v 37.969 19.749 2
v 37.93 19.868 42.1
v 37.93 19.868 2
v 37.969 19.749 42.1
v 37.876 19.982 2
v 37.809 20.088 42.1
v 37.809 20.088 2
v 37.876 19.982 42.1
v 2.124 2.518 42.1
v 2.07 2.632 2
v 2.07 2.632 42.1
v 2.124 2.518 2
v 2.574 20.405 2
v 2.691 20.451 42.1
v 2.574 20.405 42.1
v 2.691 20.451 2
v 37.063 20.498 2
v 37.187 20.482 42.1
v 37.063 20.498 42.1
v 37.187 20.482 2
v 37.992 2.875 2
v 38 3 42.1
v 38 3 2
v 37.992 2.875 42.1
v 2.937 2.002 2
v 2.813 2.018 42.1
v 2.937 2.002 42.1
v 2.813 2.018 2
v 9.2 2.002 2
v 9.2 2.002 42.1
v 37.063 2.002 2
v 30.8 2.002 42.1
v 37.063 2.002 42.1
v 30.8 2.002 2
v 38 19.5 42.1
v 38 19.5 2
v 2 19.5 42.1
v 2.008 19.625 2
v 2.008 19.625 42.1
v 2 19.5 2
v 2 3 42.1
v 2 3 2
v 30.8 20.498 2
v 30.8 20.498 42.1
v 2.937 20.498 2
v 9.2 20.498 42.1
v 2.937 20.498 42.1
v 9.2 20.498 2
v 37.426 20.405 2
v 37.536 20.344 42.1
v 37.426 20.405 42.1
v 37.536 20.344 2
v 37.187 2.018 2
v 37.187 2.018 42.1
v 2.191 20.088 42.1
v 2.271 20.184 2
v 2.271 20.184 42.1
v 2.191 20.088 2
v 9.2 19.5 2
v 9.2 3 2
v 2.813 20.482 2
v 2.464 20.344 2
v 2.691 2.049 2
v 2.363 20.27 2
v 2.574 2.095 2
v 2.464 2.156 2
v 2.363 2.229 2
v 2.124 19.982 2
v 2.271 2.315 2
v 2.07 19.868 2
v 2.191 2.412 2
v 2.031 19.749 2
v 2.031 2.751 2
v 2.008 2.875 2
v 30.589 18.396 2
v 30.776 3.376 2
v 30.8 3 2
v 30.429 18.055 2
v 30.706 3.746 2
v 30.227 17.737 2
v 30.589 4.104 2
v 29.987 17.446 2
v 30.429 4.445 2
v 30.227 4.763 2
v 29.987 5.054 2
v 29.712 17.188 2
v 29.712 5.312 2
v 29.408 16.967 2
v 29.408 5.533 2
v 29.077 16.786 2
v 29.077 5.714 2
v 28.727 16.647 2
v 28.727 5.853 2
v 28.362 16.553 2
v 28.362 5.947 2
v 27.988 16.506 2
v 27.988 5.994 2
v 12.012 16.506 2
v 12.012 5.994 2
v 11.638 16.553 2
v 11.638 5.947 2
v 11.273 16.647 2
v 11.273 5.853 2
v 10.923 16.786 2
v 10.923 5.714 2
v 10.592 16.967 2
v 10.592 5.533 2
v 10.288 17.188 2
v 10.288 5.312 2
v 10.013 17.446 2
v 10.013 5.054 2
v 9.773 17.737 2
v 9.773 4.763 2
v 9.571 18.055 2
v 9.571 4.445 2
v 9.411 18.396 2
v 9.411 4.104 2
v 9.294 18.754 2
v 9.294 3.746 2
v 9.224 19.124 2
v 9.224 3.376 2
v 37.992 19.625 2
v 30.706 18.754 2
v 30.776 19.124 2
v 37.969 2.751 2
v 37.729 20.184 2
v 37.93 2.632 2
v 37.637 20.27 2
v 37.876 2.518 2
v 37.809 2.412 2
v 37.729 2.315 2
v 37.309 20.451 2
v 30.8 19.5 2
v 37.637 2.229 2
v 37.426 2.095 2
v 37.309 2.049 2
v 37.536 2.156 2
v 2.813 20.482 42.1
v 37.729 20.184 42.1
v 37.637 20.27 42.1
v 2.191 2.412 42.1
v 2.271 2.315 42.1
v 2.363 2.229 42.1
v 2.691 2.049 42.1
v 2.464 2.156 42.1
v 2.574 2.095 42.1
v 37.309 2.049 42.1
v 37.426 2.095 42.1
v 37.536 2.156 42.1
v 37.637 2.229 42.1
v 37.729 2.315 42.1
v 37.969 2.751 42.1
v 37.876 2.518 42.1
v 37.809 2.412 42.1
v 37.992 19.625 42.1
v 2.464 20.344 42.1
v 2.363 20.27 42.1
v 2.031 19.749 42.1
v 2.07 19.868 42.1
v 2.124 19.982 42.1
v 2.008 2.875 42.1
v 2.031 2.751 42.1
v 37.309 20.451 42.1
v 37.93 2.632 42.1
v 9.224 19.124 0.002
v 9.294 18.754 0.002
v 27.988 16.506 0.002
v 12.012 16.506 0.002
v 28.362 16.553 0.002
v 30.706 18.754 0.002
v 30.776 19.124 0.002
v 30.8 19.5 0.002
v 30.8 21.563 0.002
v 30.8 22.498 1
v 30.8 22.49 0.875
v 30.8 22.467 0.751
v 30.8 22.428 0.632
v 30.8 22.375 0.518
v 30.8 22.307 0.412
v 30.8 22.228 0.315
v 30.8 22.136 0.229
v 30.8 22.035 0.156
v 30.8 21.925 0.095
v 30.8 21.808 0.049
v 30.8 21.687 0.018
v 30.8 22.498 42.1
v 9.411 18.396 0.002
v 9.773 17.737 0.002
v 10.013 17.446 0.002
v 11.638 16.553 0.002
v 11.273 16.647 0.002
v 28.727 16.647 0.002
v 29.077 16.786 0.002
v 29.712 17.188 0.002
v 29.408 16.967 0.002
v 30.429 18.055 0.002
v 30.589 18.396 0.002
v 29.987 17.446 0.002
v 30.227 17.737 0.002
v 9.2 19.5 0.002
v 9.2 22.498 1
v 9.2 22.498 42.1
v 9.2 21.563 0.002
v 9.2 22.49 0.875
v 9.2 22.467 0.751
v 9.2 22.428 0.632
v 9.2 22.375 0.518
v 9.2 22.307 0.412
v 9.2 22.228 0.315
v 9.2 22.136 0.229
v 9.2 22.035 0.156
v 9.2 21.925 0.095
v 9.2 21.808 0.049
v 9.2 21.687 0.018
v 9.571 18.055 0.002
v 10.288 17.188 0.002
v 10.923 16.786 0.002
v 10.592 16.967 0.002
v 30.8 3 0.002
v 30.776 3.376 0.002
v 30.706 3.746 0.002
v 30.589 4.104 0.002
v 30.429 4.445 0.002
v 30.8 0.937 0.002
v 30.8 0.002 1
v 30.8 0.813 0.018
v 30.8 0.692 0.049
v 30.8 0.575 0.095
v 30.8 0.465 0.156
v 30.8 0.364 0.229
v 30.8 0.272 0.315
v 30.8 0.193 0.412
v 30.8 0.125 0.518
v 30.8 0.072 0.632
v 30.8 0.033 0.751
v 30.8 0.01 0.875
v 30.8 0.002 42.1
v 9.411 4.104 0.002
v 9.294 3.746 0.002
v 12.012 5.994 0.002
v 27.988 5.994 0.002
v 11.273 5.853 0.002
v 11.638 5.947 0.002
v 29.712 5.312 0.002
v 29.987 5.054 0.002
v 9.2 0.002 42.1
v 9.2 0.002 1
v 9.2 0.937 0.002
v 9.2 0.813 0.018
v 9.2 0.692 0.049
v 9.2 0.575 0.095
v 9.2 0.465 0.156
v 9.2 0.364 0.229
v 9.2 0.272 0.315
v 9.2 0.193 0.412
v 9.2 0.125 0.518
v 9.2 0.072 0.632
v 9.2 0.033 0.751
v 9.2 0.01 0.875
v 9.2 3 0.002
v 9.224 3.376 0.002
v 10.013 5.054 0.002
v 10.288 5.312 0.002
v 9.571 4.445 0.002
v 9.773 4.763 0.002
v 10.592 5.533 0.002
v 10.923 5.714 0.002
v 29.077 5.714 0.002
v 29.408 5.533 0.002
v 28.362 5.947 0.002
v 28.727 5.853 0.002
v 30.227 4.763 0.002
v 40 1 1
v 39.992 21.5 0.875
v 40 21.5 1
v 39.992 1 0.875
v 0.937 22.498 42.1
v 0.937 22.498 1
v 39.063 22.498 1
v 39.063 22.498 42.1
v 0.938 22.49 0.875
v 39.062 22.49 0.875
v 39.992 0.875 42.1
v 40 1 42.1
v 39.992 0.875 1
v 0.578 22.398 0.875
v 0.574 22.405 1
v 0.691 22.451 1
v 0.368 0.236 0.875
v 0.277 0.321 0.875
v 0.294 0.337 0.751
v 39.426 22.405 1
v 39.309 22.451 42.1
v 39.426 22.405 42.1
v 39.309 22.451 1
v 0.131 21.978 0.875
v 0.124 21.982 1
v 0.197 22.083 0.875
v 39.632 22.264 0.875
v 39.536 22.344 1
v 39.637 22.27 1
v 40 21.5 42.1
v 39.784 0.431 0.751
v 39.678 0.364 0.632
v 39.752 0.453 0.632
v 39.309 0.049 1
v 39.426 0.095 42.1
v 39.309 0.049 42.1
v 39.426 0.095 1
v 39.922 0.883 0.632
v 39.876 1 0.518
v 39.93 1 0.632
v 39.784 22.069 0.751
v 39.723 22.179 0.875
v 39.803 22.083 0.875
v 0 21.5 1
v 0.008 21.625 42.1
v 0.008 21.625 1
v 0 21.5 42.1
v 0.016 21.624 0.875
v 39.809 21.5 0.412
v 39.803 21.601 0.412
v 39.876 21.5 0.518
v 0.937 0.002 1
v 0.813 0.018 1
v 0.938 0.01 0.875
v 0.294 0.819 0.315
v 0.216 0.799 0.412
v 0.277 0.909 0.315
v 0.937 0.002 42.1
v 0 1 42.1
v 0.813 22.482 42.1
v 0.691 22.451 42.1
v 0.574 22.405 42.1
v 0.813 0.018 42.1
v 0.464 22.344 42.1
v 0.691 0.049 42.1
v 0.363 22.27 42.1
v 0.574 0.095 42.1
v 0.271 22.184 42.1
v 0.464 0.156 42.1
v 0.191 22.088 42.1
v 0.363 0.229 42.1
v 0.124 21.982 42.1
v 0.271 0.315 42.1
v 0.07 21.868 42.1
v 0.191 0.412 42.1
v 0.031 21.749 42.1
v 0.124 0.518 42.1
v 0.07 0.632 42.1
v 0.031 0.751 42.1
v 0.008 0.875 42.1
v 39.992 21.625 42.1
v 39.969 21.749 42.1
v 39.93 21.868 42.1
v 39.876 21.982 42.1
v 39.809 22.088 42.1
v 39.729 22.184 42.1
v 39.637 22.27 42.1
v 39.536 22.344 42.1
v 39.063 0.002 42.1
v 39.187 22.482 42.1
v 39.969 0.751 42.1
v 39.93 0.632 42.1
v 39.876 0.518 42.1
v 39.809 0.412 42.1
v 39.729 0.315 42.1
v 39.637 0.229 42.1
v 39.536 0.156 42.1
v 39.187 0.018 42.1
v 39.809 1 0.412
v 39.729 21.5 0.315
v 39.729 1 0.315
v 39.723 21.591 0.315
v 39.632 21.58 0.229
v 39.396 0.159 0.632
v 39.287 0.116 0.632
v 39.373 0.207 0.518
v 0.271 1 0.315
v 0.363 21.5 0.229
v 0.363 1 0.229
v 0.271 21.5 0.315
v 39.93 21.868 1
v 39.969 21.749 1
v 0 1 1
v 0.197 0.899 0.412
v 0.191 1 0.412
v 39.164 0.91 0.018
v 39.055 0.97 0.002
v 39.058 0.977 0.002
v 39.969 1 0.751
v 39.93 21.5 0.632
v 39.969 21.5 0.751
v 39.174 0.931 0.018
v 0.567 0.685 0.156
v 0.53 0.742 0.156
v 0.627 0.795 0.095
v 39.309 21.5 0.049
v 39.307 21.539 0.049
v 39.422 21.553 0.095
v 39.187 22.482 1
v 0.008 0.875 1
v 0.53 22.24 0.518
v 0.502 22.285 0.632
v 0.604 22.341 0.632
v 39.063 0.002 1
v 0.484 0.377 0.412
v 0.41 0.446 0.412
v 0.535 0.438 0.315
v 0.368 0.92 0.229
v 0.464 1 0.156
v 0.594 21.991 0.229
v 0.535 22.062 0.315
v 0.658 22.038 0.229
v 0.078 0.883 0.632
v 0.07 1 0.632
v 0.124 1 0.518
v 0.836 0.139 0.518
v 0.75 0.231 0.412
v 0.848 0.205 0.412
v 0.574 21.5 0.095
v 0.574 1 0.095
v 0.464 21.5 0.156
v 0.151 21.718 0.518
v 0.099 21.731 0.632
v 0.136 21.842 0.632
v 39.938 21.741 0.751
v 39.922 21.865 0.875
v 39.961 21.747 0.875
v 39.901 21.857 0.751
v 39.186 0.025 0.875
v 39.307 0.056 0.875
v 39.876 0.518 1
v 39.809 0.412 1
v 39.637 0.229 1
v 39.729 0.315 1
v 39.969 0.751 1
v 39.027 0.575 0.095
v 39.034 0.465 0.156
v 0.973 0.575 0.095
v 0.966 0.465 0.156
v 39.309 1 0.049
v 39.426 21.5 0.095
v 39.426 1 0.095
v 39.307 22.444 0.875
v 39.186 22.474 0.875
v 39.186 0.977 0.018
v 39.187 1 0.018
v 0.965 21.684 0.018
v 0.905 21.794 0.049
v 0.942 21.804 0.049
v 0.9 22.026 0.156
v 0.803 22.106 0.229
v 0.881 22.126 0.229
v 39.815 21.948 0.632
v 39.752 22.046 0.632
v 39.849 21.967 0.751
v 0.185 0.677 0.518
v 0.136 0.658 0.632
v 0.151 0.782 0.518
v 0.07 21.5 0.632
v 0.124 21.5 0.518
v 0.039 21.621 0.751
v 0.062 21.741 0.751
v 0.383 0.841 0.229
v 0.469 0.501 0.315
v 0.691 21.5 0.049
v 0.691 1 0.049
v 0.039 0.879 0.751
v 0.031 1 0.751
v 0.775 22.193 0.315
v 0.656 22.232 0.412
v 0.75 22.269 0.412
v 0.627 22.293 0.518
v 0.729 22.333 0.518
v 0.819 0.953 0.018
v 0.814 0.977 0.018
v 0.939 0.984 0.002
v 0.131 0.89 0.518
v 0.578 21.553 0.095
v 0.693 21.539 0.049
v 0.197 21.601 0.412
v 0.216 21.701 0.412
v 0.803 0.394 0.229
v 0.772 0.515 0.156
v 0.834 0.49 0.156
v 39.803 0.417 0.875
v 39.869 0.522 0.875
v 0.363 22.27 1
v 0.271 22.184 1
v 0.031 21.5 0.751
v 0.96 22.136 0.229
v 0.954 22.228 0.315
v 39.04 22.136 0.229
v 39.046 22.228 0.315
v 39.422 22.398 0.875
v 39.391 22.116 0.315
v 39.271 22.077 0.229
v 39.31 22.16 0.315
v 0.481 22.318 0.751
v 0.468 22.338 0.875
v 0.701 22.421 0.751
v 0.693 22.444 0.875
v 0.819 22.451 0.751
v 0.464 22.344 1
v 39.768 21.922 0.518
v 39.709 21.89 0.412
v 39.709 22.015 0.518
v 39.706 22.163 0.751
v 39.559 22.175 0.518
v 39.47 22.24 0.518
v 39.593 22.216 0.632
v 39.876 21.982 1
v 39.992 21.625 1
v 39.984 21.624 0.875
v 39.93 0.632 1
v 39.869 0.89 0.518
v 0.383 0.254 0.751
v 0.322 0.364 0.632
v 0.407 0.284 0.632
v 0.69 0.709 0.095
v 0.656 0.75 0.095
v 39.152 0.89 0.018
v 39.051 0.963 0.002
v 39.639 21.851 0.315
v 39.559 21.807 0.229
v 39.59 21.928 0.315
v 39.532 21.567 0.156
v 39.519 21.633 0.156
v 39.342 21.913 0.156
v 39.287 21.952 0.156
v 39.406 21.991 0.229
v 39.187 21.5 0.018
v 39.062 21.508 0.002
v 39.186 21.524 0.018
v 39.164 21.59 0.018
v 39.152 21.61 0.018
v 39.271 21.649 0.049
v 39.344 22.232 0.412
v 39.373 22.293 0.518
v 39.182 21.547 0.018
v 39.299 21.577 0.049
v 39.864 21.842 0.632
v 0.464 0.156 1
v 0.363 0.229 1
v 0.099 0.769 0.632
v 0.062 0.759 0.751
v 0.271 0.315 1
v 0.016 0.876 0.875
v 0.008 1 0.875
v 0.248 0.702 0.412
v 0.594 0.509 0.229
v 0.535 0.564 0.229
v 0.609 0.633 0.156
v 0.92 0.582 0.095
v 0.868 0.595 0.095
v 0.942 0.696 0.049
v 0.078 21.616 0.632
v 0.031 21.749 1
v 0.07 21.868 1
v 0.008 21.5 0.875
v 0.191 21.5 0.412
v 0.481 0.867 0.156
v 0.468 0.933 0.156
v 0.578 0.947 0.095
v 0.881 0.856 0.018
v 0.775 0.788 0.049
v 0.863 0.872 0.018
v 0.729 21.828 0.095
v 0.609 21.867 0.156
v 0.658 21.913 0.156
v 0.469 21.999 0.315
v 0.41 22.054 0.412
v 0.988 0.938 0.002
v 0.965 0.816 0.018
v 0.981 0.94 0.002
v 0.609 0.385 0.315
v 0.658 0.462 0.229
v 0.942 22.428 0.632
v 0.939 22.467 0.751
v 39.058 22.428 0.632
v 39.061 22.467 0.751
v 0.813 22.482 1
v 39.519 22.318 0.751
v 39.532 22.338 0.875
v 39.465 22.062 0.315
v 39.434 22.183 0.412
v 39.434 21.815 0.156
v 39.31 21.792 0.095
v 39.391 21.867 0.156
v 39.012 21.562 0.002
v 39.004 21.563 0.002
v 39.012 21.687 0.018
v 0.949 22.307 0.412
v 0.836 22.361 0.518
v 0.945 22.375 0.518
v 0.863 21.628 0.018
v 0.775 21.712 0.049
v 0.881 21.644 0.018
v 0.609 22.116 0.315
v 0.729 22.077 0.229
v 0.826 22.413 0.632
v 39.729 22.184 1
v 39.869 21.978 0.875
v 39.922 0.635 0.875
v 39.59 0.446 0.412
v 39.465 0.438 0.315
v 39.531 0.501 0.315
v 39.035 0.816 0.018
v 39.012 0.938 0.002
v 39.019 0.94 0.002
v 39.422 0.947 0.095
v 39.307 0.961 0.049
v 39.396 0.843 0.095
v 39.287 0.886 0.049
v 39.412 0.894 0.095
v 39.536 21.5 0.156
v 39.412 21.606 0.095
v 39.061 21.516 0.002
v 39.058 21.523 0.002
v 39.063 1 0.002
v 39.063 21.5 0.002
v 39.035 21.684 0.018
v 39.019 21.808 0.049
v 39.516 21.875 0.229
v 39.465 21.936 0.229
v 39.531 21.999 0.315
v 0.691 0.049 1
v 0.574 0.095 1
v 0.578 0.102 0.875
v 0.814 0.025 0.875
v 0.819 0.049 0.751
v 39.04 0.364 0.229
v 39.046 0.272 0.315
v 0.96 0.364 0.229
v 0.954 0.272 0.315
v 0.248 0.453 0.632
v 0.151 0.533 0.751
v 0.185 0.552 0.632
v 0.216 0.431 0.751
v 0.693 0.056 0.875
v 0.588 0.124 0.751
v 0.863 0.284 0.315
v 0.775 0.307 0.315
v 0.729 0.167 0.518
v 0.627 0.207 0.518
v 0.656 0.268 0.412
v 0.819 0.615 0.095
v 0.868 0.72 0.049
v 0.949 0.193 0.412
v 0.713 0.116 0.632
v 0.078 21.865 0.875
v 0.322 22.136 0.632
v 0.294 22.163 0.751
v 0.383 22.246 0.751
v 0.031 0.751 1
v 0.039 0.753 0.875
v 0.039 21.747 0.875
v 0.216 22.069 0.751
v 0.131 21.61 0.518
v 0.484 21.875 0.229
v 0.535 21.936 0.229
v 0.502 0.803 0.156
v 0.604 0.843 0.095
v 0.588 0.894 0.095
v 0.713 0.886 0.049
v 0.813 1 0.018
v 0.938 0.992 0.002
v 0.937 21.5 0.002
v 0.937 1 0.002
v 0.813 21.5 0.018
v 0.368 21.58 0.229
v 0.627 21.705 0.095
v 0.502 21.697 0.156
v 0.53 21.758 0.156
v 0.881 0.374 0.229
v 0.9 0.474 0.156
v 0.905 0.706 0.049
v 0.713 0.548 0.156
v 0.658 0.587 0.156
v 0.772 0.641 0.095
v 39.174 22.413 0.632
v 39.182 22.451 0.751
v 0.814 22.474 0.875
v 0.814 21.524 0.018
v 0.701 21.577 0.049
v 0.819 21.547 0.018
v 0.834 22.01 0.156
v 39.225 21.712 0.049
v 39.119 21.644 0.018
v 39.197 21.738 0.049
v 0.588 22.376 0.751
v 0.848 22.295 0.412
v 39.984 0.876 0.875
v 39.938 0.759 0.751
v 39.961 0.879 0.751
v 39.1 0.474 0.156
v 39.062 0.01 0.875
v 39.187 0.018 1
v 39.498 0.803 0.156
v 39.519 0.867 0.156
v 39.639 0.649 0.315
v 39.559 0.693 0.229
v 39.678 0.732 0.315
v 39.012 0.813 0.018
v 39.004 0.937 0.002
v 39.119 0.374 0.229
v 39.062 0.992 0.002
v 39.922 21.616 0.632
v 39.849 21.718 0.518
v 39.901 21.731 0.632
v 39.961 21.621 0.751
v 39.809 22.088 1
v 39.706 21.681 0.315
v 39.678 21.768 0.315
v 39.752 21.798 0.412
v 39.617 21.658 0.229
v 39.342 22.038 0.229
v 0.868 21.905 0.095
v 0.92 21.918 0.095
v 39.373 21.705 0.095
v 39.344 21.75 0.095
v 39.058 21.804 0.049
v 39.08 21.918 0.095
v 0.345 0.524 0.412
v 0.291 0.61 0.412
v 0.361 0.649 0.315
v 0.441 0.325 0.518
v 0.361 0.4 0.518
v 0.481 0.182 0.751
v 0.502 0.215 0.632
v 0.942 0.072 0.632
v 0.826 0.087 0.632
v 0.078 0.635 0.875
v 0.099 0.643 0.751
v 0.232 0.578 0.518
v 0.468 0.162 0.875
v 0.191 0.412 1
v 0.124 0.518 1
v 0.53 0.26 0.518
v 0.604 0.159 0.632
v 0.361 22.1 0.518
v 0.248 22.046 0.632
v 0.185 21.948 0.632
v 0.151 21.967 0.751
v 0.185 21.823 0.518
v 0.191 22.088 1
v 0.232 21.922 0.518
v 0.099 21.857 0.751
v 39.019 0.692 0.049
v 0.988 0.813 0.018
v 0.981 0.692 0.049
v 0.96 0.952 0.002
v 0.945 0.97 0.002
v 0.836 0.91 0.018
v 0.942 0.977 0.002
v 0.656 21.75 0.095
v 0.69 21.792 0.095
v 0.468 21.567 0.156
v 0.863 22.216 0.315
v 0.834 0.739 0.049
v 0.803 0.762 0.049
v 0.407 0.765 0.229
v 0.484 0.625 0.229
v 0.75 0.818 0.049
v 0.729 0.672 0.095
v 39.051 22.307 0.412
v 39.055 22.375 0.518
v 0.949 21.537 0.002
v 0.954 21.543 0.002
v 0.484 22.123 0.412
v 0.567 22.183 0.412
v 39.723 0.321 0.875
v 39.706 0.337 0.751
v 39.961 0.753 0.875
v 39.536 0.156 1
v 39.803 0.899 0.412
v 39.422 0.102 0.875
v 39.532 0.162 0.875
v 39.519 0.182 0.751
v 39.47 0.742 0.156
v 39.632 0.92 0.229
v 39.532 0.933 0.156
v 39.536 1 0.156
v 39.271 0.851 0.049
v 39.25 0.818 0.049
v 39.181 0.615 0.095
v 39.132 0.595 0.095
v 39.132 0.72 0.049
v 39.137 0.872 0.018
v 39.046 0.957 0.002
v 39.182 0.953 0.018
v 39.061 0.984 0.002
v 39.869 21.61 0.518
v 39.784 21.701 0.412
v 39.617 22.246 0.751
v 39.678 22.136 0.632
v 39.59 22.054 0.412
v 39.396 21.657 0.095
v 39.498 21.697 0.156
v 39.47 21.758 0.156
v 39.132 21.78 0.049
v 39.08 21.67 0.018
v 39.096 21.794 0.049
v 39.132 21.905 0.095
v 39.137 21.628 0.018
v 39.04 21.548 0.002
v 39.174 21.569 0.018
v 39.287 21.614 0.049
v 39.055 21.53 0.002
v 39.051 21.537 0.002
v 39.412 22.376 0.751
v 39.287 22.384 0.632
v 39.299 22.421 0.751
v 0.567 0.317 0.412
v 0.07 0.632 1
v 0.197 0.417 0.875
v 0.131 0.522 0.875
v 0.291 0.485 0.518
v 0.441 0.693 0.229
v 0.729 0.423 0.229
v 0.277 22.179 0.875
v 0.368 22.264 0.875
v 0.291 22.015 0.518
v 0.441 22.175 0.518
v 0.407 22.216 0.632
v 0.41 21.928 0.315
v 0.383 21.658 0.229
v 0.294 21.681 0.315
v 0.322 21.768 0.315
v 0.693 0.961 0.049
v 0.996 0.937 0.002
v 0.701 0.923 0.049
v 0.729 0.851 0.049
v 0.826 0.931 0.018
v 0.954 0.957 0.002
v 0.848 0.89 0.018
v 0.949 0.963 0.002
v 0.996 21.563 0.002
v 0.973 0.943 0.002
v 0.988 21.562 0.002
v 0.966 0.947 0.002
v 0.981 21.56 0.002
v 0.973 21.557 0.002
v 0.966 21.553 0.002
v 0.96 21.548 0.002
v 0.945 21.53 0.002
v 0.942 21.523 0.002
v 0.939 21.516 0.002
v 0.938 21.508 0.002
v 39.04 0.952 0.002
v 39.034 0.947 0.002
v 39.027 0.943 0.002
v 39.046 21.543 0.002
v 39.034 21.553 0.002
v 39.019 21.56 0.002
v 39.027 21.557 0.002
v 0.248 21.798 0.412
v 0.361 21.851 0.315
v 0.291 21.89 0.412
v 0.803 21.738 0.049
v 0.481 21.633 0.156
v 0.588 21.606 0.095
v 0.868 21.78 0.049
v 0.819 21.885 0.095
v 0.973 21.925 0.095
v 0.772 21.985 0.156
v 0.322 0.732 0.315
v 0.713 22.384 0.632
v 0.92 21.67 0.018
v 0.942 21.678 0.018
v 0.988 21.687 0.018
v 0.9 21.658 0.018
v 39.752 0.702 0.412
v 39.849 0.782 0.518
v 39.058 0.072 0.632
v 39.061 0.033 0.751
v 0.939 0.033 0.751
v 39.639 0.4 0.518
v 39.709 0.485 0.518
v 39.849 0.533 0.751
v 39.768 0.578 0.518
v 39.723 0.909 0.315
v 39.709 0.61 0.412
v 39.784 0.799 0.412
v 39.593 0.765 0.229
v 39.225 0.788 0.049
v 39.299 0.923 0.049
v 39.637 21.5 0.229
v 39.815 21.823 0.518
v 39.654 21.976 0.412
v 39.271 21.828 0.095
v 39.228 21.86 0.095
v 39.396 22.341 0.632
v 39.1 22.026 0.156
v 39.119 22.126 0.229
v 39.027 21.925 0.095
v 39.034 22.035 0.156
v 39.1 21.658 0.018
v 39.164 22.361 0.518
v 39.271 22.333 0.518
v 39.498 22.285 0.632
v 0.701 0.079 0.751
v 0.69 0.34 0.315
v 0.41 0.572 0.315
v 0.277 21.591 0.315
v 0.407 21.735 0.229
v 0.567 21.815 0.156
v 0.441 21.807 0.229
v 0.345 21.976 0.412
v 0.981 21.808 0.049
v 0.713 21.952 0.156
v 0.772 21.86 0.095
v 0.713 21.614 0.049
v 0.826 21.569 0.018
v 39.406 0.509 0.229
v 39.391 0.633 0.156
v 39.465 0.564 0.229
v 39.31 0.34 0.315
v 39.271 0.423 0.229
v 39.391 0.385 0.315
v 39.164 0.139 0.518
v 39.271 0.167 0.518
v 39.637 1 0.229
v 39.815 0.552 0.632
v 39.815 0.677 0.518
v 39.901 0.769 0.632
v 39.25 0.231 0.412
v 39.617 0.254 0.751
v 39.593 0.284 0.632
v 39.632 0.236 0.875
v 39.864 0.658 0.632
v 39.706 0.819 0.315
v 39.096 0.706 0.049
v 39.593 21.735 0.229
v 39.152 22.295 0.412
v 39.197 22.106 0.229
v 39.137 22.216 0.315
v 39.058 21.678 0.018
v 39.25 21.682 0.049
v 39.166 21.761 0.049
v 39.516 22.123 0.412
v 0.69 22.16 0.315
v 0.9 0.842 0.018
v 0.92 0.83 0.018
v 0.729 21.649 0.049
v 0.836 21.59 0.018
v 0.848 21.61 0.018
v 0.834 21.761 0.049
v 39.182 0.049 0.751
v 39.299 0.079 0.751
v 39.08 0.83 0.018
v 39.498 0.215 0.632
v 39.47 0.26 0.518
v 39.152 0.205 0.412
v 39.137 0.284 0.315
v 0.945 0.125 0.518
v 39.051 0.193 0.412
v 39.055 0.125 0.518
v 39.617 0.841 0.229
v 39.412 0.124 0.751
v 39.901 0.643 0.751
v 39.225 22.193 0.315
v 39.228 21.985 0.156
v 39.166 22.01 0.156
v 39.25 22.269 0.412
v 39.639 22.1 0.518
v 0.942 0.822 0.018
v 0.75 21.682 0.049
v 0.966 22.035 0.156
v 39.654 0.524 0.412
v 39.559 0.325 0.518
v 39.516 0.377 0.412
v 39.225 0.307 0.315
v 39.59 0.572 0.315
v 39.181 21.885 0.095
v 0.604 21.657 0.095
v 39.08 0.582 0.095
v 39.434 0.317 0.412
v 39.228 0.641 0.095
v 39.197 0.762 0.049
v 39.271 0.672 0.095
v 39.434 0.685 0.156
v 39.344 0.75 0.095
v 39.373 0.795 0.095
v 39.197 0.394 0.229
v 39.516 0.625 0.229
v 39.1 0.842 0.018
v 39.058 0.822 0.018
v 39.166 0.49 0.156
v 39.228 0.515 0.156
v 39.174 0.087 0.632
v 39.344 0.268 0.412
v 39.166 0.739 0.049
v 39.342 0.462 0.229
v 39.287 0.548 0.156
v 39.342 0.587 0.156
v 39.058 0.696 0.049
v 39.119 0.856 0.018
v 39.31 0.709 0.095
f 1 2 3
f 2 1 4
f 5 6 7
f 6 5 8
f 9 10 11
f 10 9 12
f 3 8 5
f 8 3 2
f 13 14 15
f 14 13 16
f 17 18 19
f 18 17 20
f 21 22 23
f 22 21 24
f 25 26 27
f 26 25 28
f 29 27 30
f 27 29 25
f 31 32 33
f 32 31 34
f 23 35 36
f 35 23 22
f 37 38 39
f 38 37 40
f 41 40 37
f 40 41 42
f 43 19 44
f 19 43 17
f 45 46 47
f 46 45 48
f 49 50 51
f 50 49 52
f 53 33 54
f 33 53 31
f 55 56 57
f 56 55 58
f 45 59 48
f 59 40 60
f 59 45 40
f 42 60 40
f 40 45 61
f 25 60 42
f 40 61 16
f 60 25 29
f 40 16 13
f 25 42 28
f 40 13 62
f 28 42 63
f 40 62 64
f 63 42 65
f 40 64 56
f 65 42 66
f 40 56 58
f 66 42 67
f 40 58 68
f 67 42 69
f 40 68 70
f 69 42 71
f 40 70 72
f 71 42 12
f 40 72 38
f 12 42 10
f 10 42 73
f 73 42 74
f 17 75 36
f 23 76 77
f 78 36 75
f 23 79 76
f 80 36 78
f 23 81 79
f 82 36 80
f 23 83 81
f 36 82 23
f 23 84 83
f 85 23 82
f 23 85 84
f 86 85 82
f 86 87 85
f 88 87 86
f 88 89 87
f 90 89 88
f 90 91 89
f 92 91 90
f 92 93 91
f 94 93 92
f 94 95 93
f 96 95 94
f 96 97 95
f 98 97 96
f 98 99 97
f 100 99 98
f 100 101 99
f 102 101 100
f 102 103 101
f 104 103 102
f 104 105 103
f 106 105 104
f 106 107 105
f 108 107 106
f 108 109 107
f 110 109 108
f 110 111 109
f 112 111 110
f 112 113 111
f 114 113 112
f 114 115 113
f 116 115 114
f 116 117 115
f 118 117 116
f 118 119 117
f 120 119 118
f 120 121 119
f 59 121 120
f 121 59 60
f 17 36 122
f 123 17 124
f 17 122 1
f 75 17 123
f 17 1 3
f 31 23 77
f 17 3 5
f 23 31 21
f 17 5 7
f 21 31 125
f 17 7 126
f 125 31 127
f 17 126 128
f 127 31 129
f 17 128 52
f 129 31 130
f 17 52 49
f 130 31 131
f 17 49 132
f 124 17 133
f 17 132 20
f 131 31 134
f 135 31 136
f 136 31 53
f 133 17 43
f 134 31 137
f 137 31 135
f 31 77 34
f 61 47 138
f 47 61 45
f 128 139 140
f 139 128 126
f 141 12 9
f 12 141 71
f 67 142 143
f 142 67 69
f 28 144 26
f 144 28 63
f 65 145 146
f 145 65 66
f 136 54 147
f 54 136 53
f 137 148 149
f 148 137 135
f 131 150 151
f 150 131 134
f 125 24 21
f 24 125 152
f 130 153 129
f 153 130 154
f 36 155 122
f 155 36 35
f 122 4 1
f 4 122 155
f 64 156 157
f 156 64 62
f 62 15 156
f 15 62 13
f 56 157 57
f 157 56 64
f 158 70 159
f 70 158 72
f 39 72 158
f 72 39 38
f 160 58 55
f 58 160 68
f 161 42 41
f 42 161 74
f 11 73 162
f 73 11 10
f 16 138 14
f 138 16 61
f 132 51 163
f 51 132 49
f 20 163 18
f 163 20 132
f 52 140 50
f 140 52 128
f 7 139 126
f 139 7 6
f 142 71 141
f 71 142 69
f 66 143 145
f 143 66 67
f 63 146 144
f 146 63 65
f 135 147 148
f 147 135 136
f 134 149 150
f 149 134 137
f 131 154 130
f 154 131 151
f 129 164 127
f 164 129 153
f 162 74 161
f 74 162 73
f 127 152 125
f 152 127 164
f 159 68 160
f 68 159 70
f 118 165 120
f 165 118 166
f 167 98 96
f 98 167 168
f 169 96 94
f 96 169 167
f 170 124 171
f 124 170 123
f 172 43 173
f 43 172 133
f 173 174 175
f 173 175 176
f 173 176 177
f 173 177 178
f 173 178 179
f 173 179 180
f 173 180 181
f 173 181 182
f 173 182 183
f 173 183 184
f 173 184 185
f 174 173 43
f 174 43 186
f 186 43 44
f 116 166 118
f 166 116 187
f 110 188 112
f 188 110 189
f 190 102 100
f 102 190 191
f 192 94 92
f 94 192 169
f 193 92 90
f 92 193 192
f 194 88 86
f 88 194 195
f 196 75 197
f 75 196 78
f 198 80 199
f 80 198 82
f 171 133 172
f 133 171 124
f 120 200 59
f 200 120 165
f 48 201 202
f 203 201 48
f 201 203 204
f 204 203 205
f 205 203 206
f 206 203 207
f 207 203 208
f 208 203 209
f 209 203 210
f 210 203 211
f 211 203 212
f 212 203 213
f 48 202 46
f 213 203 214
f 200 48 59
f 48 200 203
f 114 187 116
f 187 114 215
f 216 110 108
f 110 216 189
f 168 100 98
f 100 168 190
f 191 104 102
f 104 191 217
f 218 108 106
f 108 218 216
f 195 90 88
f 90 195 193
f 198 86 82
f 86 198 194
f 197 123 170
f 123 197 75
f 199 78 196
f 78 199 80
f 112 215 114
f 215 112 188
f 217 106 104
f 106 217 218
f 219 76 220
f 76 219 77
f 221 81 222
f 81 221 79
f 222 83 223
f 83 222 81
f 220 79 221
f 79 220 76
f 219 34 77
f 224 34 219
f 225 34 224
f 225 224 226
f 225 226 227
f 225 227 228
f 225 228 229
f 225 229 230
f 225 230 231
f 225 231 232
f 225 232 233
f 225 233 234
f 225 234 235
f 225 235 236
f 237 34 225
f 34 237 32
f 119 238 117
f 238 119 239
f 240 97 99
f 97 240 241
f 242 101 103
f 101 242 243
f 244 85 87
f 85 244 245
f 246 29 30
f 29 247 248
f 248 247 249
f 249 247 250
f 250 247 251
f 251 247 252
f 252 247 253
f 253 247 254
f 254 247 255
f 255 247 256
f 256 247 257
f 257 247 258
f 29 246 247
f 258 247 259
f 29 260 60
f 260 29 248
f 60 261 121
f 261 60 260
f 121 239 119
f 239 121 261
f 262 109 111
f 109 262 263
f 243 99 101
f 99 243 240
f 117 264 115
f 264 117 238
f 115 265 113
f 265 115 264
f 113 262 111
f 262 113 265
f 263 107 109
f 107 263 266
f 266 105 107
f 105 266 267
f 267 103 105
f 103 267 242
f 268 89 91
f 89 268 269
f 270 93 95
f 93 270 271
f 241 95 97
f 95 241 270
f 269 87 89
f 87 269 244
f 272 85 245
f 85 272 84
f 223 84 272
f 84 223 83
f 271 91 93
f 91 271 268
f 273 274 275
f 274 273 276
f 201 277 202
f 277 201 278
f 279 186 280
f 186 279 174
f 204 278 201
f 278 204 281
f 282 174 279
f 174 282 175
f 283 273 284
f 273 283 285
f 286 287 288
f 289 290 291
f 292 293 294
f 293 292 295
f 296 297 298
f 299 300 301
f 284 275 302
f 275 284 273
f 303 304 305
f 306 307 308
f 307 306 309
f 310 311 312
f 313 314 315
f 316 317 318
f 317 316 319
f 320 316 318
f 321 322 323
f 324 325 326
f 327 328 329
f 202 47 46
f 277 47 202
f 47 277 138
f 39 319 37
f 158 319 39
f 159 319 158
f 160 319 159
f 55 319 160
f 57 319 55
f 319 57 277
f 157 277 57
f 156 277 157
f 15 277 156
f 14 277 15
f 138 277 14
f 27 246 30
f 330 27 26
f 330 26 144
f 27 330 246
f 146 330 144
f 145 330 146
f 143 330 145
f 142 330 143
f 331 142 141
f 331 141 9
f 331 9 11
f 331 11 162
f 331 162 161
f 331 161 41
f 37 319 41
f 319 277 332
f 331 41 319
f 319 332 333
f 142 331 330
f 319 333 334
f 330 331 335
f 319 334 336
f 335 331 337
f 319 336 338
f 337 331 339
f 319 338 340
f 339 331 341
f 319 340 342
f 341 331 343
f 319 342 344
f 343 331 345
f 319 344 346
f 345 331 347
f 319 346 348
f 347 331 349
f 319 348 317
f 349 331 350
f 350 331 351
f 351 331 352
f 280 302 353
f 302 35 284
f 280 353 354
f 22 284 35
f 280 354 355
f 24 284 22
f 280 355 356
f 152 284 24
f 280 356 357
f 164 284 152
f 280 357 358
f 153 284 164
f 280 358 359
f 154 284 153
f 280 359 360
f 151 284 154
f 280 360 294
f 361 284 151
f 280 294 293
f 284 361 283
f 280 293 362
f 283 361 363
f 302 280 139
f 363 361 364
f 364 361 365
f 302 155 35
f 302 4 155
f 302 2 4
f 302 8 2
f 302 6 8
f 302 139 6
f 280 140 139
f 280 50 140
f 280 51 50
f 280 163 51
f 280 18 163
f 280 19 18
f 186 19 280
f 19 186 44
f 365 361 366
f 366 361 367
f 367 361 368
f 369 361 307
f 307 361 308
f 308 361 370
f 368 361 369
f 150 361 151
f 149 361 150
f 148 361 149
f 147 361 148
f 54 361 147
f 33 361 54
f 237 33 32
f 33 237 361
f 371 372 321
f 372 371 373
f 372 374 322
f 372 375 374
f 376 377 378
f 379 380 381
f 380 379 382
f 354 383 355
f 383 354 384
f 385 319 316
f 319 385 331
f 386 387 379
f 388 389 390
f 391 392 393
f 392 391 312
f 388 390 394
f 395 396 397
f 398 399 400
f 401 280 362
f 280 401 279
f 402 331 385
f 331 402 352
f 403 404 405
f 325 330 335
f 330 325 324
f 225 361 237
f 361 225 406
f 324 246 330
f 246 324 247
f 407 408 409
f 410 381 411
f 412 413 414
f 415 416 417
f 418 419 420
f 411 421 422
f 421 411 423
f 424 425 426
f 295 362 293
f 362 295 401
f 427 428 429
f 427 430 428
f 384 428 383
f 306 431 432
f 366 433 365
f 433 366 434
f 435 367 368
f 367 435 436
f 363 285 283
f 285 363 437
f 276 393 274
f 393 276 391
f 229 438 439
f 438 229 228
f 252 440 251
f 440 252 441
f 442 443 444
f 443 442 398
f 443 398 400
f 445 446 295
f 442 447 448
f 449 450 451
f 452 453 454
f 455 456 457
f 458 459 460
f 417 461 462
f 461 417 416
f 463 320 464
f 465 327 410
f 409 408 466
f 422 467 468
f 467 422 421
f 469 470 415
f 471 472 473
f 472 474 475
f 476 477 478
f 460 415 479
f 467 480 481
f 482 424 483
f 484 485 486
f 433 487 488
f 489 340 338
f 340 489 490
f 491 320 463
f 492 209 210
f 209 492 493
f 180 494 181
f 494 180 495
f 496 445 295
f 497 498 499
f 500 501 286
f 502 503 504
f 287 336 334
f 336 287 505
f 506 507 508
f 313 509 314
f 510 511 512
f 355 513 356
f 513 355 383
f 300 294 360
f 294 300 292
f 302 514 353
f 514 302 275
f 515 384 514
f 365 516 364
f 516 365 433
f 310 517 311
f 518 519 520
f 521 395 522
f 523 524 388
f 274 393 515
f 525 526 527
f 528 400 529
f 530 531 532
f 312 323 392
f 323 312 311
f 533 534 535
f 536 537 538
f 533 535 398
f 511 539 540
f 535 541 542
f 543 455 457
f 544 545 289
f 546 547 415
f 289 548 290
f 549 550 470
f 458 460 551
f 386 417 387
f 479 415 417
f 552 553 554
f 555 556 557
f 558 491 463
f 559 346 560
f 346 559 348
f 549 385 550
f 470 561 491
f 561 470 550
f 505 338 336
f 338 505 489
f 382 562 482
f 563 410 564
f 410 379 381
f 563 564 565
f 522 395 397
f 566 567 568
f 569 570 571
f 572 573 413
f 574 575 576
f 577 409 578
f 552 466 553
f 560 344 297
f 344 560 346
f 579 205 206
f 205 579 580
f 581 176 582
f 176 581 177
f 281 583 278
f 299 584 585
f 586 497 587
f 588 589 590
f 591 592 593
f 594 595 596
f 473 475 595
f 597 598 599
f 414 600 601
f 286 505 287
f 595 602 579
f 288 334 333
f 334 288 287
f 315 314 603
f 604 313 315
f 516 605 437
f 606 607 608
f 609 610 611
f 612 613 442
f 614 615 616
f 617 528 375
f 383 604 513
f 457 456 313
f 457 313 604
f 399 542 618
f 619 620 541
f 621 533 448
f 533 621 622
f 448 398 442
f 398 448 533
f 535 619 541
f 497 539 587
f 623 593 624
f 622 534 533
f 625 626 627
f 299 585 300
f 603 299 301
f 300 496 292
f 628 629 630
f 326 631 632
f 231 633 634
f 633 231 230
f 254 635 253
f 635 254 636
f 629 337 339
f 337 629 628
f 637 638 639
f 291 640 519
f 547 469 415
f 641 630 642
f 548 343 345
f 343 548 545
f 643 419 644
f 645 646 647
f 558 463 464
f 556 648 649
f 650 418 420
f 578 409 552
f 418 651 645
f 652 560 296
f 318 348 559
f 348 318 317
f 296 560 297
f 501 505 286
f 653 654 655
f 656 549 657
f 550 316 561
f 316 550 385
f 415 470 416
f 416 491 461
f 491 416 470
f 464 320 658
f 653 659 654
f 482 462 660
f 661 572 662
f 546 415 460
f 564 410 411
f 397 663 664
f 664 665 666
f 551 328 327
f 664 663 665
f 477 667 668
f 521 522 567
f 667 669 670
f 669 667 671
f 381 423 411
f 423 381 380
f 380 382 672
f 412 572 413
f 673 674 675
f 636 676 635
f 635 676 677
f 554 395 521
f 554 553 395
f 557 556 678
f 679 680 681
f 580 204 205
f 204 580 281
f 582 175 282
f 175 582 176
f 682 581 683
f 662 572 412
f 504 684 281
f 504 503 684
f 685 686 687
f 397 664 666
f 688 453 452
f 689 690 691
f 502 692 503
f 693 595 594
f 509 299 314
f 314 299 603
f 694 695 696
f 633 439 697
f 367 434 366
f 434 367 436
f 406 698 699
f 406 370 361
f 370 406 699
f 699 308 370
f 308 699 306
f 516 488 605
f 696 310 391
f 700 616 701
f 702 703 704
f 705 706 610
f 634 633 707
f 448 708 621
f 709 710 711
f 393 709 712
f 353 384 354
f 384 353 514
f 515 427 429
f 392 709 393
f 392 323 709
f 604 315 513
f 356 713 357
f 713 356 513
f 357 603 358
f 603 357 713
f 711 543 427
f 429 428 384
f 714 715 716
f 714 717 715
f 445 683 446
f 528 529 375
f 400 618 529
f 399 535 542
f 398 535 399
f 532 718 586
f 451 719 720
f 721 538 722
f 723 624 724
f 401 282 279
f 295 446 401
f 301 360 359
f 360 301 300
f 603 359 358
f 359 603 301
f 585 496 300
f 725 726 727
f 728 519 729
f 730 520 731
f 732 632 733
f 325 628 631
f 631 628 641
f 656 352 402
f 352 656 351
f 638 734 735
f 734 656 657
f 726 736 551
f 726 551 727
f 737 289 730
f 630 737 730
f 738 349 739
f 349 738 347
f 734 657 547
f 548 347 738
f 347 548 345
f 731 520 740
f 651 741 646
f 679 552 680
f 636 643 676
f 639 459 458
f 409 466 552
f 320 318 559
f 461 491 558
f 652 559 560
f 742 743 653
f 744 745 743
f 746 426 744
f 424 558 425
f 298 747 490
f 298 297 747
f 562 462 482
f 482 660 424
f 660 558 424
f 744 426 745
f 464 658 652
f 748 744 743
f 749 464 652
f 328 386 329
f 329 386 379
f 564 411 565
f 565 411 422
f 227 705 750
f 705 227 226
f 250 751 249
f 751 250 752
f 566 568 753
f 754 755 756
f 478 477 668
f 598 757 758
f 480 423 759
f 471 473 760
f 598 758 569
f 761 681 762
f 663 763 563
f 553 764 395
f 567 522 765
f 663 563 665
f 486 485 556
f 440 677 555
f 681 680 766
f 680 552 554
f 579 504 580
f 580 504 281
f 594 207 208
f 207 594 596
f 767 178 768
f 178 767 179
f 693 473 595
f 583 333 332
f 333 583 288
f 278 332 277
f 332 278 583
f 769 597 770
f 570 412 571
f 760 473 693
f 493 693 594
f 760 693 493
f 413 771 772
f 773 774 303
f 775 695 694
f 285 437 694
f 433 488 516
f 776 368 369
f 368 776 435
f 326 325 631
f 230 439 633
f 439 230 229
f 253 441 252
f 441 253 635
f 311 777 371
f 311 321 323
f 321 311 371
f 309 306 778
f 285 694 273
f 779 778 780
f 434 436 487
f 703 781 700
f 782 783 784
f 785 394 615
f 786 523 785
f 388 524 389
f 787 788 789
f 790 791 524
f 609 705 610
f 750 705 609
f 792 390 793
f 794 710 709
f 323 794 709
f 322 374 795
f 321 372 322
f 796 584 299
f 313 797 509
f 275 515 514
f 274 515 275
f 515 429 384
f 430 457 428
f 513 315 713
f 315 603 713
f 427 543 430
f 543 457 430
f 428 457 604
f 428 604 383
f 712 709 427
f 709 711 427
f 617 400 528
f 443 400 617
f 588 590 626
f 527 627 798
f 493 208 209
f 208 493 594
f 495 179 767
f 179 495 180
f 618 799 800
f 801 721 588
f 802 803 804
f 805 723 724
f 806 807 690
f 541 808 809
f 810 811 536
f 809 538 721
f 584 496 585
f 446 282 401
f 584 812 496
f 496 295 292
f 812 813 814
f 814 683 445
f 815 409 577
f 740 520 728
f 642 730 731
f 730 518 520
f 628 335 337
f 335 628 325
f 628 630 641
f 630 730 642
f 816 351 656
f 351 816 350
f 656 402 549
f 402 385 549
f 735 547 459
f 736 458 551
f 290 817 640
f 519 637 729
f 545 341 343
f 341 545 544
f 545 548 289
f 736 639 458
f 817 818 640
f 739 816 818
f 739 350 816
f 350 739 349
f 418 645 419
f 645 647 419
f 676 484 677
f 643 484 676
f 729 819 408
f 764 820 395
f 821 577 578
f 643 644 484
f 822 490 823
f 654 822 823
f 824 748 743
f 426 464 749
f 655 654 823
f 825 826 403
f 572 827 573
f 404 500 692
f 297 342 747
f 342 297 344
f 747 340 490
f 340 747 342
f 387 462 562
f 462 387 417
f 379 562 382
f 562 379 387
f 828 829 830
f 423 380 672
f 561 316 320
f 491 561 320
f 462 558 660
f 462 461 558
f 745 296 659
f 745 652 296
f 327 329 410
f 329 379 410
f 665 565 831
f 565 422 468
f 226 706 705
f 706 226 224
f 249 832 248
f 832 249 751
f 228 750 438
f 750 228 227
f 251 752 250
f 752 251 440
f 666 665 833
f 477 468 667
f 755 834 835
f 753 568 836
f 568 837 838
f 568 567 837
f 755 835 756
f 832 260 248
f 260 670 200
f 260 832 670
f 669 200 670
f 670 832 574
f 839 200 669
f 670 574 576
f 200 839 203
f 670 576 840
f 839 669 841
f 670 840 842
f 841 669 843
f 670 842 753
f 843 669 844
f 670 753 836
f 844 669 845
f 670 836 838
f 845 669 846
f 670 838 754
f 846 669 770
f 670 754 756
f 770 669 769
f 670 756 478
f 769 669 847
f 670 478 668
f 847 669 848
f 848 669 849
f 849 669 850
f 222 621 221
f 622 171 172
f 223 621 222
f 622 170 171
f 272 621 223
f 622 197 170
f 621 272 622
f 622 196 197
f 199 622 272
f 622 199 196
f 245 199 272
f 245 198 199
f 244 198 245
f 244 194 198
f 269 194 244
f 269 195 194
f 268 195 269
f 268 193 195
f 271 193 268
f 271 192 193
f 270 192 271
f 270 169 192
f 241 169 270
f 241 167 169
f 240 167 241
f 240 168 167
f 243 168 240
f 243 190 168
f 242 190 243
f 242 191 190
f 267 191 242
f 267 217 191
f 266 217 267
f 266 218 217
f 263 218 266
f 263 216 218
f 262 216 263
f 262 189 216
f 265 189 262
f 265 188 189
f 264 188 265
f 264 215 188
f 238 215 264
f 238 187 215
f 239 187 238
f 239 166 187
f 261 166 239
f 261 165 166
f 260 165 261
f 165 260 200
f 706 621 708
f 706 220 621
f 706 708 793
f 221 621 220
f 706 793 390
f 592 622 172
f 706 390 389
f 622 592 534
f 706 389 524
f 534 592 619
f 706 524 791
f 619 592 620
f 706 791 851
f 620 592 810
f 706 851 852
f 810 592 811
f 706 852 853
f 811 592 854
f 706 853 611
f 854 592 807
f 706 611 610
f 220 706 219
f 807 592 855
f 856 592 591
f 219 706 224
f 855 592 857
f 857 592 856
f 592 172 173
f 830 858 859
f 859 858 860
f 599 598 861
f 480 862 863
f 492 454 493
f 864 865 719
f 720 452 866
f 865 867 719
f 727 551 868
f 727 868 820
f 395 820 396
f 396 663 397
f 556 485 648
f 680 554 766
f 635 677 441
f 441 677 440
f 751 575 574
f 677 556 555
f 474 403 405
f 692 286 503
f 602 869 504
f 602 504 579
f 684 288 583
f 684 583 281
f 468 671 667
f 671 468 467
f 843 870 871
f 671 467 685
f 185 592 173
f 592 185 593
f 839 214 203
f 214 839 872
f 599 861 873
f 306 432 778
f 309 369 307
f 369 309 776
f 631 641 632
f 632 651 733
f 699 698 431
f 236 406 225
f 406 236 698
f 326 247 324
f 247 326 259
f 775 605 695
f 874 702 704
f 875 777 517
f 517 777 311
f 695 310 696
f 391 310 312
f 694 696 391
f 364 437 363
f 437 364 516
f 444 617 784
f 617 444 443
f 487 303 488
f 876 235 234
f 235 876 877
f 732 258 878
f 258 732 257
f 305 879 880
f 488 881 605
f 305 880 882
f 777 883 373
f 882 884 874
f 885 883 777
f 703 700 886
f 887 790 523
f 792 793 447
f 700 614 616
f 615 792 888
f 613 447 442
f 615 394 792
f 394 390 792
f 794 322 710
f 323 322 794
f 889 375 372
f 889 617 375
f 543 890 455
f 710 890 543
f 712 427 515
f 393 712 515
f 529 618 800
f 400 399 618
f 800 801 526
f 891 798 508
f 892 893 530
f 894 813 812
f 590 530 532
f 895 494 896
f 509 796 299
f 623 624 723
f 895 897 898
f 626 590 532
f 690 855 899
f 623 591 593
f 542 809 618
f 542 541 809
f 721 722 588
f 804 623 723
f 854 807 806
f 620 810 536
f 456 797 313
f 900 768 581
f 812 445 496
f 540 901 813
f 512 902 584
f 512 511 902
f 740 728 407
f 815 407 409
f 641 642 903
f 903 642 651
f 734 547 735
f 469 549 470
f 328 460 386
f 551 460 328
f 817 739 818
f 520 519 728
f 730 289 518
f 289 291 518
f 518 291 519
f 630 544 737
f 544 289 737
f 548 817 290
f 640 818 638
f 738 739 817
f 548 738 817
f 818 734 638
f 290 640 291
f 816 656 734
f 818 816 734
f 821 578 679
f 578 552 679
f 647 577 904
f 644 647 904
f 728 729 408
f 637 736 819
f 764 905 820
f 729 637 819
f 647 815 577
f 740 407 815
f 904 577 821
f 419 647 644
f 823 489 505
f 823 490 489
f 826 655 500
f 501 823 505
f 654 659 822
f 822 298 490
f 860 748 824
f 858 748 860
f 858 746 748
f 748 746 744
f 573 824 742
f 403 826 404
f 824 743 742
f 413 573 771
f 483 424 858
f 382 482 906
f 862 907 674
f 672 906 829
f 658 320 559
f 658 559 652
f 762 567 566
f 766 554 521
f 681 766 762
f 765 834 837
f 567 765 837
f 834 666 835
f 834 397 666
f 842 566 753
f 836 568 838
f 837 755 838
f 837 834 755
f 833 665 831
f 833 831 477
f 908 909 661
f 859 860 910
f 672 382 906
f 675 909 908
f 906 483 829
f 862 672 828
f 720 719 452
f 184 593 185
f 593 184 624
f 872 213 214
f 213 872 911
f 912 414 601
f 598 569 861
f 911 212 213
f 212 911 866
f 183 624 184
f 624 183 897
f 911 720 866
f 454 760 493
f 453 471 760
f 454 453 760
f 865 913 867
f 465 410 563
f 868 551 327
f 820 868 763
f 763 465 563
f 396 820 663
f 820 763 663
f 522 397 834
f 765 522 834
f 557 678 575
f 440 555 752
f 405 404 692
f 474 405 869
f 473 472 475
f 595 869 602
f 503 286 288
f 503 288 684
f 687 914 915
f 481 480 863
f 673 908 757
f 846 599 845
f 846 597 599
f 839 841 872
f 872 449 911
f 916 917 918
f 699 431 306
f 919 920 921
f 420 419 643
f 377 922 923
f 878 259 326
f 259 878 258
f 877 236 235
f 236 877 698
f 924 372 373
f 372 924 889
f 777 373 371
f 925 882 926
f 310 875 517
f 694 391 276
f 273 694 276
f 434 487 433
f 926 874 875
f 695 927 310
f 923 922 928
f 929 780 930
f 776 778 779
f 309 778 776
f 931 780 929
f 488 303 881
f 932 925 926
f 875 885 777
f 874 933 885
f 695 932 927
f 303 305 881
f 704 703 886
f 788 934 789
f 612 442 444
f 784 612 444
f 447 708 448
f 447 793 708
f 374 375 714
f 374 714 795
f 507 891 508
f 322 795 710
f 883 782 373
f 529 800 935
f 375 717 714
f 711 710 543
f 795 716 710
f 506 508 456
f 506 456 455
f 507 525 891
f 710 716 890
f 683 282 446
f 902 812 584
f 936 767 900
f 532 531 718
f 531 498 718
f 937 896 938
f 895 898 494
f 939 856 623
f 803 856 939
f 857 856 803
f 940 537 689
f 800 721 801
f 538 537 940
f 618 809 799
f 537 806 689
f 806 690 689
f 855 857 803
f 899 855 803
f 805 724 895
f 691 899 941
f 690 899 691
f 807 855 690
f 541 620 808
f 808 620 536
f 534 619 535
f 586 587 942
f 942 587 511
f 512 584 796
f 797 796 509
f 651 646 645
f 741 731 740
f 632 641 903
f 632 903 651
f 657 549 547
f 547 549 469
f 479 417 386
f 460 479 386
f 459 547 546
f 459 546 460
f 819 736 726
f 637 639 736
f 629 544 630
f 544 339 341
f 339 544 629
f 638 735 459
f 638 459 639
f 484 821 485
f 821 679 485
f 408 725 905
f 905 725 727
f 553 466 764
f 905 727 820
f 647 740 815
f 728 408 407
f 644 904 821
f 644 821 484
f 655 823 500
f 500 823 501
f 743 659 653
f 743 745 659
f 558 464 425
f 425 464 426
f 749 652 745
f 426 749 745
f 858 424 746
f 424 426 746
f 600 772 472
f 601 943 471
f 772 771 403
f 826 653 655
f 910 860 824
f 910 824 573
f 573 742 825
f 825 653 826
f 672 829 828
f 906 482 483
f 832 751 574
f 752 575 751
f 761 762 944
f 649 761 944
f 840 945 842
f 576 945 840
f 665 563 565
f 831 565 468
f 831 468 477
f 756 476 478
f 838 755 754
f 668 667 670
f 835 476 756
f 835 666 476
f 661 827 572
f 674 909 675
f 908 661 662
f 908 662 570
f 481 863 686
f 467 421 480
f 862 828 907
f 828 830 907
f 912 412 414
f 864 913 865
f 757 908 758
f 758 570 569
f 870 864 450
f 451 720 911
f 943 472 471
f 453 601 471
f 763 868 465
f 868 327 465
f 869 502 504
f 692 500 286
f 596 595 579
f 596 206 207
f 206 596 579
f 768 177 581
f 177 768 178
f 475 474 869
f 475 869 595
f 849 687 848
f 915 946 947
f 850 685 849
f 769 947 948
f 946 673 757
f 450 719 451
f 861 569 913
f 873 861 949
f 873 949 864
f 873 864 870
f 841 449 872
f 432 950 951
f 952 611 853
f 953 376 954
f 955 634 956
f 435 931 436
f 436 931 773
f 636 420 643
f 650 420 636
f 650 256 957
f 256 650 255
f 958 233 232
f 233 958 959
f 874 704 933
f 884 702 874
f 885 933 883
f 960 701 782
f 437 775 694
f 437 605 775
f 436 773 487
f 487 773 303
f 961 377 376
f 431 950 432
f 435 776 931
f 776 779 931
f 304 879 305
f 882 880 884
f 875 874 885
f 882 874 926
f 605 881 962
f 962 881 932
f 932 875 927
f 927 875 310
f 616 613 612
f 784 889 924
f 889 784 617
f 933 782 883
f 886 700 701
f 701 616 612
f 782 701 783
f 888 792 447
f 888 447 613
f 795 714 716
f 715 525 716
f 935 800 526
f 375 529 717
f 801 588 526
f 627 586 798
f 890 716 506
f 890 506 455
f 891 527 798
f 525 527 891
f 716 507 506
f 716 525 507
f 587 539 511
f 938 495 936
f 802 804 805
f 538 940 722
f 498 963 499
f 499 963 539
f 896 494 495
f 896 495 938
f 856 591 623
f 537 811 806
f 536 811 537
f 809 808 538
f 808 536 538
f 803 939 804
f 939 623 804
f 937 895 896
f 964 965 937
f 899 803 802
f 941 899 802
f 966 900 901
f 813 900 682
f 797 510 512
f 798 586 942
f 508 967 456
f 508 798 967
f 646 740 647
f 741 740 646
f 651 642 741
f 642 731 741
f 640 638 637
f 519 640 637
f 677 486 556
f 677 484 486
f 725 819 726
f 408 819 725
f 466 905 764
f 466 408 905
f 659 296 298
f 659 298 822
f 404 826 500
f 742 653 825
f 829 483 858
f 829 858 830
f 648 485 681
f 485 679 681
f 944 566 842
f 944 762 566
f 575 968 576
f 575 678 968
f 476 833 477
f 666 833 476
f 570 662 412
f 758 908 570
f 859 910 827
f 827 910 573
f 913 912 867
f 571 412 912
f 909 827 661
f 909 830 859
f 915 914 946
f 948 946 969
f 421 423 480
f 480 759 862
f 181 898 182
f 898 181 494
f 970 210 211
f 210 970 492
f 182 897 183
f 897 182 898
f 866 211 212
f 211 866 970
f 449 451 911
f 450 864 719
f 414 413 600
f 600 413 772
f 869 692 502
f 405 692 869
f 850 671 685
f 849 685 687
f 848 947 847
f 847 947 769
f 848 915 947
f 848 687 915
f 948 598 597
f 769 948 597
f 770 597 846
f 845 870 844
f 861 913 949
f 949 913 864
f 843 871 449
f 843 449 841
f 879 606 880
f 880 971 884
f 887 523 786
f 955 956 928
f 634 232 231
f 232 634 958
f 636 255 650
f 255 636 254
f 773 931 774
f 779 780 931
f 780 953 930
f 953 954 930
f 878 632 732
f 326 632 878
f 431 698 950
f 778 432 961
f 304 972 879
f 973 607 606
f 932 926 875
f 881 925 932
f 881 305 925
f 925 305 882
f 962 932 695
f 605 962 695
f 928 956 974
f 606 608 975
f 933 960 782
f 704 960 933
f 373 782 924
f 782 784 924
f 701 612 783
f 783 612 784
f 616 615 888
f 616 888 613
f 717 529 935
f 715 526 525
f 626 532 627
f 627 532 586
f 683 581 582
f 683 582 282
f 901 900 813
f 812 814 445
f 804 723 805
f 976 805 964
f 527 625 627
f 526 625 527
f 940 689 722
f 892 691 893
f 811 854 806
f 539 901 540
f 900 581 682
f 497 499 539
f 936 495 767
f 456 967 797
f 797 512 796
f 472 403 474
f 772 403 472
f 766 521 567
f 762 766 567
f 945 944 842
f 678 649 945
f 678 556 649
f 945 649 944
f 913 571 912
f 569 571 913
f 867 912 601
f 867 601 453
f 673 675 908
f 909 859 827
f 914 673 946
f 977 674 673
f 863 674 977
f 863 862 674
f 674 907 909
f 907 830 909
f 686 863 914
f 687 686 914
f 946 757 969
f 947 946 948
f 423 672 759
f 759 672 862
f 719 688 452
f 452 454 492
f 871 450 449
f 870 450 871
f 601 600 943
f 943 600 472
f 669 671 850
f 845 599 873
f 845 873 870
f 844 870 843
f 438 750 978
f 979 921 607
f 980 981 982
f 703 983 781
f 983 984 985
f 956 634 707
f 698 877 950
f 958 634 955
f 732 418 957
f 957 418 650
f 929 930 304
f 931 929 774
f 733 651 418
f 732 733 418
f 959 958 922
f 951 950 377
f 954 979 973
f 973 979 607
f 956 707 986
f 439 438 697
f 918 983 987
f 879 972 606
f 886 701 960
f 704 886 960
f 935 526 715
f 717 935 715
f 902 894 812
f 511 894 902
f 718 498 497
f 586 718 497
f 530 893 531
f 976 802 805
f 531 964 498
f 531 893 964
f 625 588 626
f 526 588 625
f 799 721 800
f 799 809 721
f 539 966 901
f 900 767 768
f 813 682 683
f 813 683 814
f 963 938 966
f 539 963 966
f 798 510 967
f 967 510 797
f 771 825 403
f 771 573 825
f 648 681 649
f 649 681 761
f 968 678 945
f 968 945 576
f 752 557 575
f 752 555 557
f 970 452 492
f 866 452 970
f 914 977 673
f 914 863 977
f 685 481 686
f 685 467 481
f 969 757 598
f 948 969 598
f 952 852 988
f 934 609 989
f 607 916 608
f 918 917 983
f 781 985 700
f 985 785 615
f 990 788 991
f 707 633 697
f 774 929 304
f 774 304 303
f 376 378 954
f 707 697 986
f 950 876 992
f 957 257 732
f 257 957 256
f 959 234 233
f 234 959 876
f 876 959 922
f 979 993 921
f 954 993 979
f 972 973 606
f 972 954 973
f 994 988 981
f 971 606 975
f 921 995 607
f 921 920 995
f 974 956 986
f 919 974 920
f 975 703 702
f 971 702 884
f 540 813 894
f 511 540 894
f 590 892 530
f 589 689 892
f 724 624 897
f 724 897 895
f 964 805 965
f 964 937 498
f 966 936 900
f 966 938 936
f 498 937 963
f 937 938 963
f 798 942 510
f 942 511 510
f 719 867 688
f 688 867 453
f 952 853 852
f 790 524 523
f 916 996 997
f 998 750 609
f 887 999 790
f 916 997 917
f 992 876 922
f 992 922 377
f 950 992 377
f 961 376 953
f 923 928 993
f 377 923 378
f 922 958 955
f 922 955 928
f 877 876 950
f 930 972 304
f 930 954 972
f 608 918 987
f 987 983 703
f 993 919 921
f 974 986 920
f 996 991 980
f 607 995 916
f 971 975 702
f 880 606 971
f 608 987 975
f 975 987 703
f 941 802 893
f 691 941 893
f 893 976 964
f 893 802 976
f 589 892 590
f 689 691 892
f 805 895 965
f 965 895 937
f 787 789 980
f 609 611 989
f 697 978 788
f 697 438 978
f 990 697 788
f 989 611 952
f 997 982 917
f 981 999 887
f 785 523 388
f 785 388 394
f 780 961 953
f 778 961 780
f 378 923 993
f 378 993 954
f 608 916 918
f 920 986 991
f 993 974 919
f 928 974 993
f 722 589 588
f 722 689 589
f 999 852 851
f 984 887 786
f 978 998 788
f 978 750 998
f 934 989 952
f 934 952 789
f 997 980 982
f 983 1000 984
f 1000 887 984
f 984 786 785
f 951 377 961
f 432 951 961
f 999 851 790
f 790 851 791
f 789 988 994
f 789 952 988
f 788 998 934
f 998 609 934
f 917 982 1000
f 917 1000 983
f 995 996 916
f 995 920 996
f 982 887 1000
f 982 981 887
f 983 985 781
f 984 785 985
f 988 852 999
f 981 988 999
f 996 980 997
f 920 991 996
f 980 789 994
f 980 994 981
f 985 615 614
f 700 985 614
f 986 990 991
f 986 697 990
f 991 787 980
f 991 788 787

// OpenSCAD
// file: ../../lib/rounded_square.scad
$bleed = 1;
$rounding = 3;

module rounded_square(size) {
  inner_size = [
    size[0] - $rounding * 2,
    size[1] - $rounding * 2,
  ];

  minkowski() {
    translate([$rounding, $rounding, 0]) {
      square(inner_size);
    }
    circle($rounding);
  }
}
// file: ../../lib/tile_tray.scad
$wall_thickness = 2;
$bleed = 0.01;
$tile_gap = 0.5;
$inset = 6;

function get_tile_offset (size, index=1) = (size + $tile_gap * 2 + $wall_thickness) * index;
function get_tile_stack_height (size, count) = size[2] * count + $tile_gap;

module tile_cutout(
  tile_size, 
  count, 
  floor_height=$wall_thickness, 
  roof_height=false,
  left_cutout=false, 
  right_cutout=false,
  top_cutout=false,
  bottom_cutout=false
) {
  tray_size = [
    tile_size[0] + $tile_gap * 2,
    tile_size[1] + $tile_gap * 2,
    get_tile_stack_height(tile_size, count) + $bleed,
  ];

  fraction = 0.6;
  cutout_size = [
    tray_size[0] * fraction,
    tray_size[1] * fraction,
    box_size[2] + $bleed * 2,
  ];

  // TODO fix to not rely on box size!

  _floor_height = roof_height 
    ? roof_height - tray_size[2] + $bleed
    : floor_height;

  if (!_floor_height) {
    echo("bad tile: ", tile_size);
    echo("bad tray: ", tray_size);
  }

  translate([0, 0, _floor_height]) {
    rounded_cube(tray_size, flat=true, $rounding=1);
  }

  if (left_cutout) {
    translate([-cutout_size[0] + $inset, (tray_size[1] - cutout_size[1]) / 2, 0]) {
      rounded_cube(cutout_size, flat=true);
    }
  }

  if (right_cutout) {
    translate([tray_size[0] + $wall_thickness - $inset, (tray_size[1] - cutout_size[1]) / 2, 0]) {
      rounded_cube(cutout_size, flat=true);
    }
  }

  if (top_cutout) {
    translate([
      (tray_size[0] - cutout_size[0]) / 2, 
      tray_size[1] + $wall_thickness - $inset,
      0
    ]) {
      rounded_cube(cutout_size, flat=true);
    }
  }

  if (bottom_cutout) {
    translate([
      (tray_size[0] - cutout_size[0]) / 2, 
      0 - cutout_size[1] - $wall_thickness + $inset,
      0
    ]) {
      rounded_cube(cutout_size, flat=true);
    }
  }
}
// file: ../../lib/rounded_cube.scad
include <./rounded_square.scad>

$bleed = 1;
$rounding = 3;

// Render a rounded cube
// flat_top: do not round the top edges
// flat_bottom: do not round the bottom edges
// flat: equals flat_top && flat_bottom
// 
// Limitations:
// requires height > $rounding * 2
// flat_top || flat_bottom requires height > $rounding
// flat_top && flat_bottom requires height > $bleed
module rounded_cube(
  size, 
  flat=false, 
  flat_top=false, 
  flat_bottom=false,
  side_rounding=-1
) {
  _flat = flat || (flat_top && flat_bottom);
  _flat_top = flat_top || flat;
  _flat_bottom = flat_bottom || flat;
  _rounding = min($rounding, size[2] / 2);
  _side_rounding = side_rounding > -1 ? side_rounding: $rounding;

  assert(_side_rounding >= $rounding, "side rounding cannot be less than rounding");

  top_height = _flat_top ? 0: _rounding;
  bottom_height = _flat_bottom ? 0: _rounding;

  cube_size = [
    size[0] - _rounding * 2,
    size[1] - _rounding * 2,
    size[2] - (top_height + bottom_height)
  ];

  if (_flat_top && _flat_bottom) {
     linear_extrude(cube_size[2]) {
       rounded_square([size[0], size[1]]);
     }
  } else {
    minkowski() {
      translate([_rounding, _rounding, bottom_height]) {
        if (_side_rounding != _rounding) {
          linear_extrude(cube_size[2]) {
            rounded_square([cube_size[0], cube_size[1]], $rounding=_side_rounding);
          }
        } else {
          cube(cube_size);
        }
      }

      if (_flat_top) {
        difference() {
          sphere(_rounding);
          cylinder(_rounding, _rounding, _rounding);
        }
      } else if (_flat_bottom) {
        difference() {
          sphere(_rounding);
          translate ([0, 0, -_rounding]) {
            cylinder(_rounding, _rounding, _rounding);
          }
        }
      } else {
        sphere(_rounding);
      }
    }
  }
}
// main file
echo(version=version());

include <../../lib/rounded_cube.scad>
include <../../lib/tile_tray.scad>

// Config
$fn = 50;
// $fn = 10;

// Decorations
decoration_tile_count = 18;
decoration_tile_size = [
  35,
  17.5, 
  2.2,
];

box_size = [
  get_tile_offset(decoration_tile_size[0]) + $wall_thickness,
  get_tile_offset(decoration_tile_size[1]) + $wall_thickness,
  get_tile_stack_height(decoration_tile_size, decoration_tile_count)
    + $wall_thickness,
];

difference() {
  rounded_cube(box_size, flat_top=true, $rounding=1);

  translate([$wall_thickness, $wall_thickness, 0]) {
    tile_cutout(
      decoration_tile_size, 
      decoration_tile_count, 
      roof_height=box_size[2], 
      top_cutout=true,
      bottom_cutout=true
    );
  }
}
